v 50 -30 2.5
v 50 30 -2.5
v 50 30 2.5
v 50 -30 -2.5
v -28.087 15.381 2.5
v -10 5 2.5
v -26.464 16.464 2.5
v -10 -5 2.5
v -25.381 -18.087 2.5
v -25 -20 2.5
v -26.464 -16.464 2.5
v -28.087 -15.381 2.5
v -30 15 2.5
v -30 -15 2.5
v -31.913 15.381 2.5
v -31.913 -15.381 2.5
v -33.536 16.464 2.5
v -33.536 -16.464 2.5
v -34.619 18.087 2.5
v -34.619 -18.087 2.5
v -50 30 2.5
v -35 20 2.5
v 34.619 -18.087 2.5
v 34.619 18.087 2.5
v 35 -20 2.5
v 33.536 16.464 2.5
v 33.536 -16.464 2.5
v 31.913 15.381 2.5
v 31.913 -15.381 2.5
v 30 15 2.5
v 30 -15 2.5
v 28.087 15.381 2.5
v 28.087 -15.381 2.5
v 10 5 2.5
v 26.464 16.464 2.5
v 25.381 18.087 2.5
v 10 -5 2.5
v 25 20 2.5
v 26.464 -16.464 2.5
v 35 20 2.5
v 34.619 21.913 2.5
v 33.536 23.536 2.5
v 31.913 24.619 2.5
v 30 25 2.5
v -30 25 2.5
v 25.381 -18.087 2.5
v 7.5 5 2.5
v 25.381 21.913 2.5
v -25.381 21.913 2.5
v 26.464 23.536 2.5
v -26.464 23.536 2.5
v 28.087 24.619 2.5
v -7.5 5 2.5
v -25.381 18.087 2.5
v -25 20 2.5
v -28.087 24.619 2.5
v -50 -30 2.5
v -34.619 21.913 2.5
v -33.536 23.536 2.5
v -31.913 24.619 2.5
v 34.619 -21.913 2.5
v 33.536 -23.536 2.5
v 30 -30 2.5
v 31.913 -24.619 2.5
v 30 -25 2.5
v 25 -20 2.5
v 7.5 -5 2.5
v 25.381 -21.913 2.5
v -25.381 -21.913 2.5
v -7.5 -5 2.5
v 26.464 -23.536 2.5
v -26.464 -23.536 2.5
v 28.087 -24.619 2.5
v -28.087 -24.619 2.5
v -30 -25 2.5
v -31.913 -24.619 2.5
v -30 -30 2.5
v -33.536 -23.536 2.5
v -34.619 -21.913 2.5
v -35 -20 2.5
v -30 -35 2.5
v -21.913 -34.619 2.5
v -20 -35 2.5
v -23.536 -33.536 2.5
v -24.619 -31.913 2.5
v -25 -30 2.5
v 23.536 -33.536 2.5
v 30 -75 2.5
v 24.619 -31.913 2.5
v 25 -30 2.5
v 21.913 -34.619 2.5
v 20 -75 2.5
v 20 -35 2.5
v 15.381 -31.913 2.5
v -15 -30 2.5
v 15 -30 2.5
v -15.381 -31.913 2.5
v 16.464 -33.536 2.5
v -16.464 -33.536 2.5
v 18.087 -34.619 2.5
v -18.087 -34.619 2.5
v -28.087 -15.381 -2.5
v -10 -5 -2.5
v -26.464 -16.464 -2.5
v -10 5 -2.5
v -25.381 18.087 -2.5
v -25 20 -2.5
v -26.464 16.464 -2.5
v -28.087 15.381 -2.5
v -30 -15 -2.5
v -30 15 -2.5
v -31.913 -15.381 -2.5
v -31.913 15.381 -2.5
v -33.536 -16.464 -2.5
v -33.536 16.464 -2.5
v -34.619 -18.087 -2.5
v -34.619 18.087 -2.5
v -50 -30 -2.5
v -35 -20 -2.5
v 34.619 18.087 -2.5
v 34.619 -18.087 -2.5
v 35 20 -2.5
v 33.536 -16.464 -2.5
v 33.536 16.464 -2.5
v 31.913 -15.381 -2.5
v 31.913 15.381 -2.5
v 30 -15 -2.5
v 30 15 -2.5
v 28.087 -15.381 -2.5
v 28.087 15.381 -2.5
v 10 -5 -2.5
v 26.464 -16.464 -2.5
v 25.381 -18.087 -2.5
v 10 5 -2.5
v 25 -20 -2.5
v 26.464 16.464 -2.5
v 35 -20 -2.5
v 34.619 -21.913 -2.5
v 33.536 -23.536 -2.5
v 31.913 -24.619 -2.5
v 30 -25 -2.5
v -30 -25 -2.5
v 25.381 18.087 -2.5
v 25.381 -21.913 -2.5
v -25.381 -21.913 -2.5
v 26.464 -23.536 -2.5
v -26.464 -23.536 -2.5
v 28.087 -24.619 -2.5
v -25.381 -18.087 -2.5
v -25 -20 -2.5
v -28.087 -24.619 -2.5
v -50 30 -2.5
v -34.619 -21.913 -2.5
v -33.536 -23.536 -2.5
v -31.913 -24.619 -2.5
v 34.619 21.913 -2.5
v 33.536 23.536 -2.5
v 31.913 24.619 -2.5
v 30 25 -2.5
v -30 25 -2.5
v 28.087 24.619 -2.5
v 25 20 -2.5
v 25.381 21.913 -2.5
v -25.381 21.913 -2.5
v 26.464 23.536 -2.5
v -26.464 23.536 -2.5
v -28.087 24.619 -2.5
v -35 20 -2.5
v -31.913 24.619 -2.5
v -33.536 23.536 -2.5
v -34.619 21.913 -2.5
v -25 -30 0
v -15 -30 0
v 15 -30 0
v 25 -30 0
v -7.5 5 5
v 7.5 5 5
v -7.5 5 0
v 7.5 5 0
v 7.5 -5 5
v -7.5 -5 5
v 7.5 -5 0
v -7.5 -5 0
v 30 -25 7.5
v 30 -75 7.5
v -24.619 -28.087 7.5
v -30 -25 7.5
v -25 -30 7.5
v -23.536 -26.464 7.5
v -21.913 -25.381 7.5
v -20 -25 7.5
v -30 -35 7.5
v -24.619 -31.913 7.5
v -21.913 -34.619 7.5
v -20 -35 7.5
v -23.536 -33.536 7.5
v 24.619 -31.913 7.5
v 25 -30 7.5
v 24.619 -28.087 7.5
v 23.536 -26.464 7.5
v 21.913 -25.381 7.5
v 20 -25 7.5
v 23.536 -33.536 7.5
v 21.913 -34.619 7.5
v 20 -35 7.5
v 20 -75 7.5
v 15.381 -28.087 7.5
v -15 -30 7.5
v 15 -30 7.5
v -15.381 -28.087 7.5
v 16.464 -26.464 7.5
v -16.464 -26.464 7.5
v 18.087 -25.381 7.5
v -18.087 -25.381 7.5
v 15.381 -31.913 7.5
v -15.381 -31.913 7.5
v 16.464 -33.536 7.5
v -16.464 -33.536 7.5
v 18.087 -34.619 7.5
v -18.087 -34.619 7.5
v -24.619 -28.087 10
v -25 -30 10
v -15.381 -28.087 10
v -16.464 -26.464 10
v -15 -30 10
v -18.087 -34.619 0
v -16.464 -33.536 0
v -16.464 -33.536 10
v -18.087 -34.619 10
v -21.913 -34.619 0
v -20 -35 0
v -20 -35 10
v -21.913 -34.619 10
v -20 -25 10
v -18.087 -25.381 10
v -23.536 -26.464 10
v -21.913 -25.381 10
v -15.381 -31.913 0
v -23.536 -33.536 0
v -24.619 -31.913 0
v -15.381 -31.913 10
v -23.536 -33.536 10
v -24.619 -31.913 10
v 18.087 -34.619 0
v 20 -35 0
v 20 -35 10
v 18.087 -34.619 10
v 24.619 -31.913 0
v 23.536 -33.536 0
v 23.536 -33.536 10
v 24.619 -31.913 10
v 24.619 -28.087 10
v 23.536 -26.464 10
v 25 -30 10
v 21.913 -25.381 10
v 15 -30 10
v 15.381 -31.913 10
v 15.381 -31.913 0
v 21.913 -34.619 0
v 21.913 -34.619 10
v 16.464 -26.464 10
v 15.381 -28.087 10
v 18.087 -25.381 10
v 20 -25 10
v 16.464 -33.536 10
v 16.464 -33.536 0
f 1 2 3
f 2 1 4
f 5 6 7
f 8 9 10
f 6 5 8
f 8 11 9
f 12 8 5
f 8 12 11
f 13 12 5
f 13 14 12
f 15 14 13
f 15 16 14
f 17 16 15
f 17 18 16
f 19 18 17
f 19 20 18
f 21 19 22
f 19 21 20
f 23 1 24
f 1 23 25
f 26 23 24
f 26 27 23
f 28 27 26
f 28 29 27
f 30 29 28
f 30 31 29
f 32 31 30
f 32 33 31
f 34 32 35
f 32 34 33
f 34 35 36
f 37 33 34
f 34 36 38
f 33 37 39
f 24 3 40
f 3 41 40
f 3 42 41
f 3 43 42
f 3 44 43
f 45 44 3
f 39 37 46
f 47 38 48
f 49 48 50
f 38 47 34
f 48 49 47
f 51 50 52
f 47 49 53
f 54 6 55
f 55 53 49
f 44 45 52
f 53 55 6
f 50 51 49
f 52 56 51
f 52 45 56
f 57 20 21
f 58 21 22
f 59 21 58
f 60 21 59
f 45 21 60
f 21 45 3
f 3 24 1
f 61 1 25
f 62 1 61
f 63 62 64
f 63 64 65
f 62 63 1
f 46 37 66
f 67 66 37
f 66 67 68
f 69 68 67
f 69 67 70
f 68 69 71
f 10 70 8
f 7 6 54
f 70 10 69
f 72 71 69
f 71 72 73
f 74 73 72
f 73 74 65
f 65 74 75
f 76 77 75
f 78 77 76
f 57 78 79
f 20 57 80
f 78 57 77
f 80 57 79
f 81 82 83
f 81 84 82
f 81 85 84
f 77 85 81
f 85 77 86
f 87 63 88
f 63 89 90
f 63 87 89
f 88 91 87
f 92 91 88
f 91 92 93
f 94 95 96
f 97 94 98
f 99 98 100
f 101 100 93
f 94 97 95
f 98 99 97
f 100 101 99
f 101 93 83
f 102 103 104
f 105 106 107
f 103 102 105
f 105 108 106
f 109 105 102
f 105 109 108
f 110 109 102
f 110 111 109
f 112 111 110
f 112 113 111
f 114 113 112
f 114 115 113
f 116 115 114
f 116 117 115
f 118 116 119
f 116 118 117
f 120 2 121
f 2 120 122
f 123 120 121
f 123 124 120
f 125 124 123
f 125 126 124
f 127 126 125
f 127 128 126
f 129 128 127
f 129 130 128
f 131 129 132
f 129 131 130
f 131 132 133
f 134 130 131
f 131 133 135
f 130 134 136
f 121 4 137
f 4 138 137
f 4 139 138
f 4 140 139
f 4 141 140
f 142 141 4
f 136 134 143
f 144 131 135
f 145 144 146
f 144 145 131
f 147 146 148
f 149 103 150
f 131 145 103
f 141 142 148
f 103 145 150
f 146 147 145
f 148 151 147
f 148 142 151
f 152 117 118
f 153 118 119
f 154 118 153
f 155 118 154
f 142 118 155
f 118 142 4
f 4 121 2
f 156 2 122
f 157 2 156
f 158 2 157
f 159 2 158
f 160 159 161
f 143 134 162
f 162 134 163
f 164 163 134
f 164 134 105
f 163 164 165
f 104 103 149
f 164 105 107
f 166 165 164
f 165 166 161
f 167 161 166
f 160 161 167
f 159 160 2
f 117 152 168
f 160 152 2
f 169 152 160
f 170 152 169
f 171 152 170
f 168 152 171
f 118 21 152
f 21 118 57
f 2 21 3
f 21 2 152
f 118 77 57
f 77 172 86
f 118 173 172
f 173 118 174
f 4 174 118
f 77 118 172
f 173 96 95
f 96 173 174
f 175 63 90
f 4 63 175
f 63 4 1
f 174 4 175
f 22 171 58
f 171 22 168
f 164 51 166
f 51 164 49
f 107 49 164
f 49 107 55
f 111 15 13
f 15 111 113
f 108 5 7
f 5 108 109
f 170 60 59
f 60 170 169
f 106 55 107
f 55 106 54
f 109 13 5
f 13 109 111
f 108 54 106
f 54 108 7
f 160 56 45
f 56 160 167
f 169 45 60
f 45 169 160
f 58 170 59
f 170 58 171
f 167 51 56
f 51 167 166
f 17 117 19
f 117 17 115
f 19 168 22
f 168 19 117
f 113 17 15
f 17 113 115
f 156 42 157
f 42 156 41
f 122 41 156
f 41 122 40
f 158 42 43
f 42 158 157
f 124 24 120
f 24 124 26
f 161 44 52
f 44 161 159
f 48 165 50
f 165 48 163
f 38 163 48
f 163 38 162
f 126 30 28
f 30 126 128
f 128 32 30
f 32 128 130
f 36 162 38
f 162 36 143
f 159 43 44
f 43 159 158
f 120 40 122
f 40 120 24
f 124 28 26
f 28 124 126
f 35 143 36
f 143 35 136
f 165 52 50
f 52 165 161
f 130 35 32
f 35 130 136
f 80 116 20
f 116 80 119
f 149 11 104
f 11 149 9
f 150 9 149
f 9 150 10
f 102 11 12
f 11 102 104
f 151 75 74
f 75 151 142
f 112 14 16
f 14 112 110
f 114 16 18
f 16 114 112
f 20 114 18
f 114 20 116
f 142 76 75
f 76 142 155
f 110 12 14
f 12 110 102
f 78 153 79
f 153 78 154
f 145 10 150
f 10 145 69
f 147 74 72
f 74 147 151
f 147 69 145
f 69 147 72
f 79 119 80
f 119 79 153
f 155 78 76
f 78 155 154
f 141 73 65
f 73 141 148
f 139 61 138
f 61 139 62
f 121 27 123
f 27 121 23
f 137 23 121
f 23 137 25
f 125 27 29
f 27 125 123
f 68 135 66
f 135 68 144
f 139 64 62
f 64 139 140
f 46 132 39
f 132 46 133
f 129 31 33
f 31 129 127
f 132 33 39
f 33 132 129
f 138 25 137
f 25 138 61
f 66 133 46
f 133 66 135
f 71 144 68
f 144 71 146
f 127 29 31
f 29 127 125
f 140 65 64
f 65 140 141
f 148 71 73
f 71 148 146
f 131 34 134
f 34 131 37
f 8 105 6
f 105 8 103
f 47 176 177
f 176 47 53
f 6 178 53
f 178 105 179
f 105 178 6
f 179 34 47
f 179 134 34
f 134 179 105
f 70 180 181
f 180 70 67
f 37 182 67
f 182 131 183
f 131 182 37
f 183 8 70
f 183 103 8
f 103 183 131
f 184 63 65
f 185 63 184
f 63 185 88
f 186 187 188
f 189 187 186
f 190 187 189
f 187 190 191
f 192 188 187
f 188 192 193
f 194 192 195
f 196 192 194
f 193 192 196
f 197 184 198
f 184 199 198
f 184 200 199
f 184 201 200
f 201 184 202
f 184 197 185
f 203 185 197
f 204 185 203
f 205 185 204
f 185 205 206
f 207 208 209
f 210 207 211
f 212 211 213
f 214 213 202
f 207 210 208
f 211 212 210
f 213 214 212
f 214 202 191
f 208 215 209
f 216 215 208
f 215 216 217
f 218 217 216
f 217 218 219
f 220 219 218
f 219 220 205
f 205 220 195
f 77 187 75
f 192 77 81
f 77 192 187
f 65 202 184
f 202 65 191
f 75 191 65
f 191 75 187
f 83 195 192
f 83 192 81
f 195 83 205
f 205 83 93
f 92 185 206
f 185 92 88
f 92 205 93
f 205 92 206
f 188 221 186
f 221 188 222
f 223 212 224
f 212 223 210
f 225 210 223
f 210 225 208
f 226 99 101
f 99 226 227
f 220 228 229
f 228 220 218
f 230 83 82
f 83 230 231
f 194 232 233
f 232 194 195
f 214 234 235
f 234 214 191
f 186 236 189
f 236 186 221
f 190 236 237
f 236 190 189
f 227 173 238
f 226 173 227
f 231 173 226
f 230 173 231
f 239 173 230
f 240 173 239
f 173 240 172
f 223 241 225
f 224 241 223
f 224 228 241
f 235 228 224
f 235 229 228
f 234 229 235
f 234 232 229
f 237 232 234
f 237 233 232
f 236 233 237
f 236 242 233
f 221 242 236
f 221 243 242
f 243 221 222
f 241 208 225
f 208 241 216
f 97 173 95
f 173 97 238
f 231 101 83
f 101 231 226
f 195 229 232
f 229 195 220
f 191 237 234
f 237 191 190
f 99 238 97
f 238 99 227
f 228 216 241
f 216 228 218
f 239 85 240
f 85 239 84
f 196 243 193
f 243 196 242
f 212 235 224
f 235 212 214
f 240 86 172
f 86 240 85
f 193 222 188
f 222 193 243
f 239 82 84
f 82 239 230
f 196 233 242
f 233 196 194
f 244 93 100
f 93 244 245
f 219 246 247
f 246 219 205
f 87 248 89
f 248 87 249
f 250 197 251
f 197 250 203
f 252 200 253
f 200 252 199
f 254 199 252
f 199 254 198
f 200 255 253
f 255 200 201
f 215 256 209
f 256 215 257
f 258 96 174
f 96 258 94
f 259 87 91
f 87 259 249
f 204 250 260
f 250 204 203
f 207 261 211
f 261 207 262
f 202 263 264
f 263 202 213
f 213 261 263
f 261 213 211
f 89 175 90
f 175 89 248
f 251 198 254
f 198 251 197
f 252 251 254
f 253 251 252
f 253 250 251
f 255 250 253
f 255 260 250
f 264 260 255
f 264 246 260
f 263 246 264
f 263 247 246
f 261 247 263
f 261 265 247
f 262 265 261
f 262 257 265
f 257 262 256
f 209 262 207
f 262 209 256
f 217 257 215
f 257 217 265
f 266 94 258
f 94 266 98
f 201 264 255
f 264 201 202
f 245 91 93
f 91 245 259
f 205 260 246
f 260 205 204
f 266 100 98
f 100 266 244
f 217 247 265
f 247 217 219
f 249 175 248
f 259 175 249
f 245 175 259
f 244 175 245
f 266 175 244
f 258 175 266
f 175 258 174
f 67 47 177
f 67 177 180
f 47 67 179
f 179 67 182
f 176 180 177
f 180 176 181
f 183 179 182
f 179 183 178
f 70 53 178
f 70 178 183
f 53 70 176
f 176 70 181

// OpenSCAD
// Base Plate
module base_plate() {
    difference() {
        // Main rectangular plate
        cube([100, 60, 5], center = true);
        
        // Circular holes
        translate([-30, 20, 2.5]) cylinder(r = 5, h = 10, center = true);
        translate([30, 20, 2.5]) cylinder(r = 5, h = 10, center = true);
        translate([-30, -20, 2.5]) cylinder(r = 5, h = 10, center = true);
        translate([30, -20, 2.5]) cylinder(r = 5, h = 10, center = true);
        
        // Rectangular slot (repositioned to align symmetrically with circular holes)
        translate([0, 0, 2.5]) cube([20, 10, 10], center = true);
    }
}

// Rectangular Block
module rectangular_block() {
    // Resized to match the original model dimensions
    cube([15, 10, 5], center = true);
}

// L-Shaped Bracket
module L_shaped_bracket() {
    union() {
        // Horizontal arm
        translate([0, 0, 2.5]) cube([60, 10, 5], center = true);
        
        // Vertical arm
        translate([25, -25, 2.5]) rotate([0, 0, 90]) cube([40, 10, 5], center = true);
        
        // Circular holes on horizontal arm
        translate([-20, 0, 2.5]) cylinder(r = 5, h = 10, center = true);
        translate([20, 0, 2.5]) cylinder(r = 5, h = 10, center = true);
    }
}

// Assembly
module assembly() {
    // Layer 1: Base Plate
    base_plate();
    
    // Layer 2: Rectangular Block inserted into Base Plate
    translate([0, 0, 2.5]) rectangular_block();
    
    // Layer 3: L-Shaped Bracket mounted onto Base Plate
    translate([0, -30, 2.5]) L_shaped_bracket();
}

// Render the assembly
assembly();
